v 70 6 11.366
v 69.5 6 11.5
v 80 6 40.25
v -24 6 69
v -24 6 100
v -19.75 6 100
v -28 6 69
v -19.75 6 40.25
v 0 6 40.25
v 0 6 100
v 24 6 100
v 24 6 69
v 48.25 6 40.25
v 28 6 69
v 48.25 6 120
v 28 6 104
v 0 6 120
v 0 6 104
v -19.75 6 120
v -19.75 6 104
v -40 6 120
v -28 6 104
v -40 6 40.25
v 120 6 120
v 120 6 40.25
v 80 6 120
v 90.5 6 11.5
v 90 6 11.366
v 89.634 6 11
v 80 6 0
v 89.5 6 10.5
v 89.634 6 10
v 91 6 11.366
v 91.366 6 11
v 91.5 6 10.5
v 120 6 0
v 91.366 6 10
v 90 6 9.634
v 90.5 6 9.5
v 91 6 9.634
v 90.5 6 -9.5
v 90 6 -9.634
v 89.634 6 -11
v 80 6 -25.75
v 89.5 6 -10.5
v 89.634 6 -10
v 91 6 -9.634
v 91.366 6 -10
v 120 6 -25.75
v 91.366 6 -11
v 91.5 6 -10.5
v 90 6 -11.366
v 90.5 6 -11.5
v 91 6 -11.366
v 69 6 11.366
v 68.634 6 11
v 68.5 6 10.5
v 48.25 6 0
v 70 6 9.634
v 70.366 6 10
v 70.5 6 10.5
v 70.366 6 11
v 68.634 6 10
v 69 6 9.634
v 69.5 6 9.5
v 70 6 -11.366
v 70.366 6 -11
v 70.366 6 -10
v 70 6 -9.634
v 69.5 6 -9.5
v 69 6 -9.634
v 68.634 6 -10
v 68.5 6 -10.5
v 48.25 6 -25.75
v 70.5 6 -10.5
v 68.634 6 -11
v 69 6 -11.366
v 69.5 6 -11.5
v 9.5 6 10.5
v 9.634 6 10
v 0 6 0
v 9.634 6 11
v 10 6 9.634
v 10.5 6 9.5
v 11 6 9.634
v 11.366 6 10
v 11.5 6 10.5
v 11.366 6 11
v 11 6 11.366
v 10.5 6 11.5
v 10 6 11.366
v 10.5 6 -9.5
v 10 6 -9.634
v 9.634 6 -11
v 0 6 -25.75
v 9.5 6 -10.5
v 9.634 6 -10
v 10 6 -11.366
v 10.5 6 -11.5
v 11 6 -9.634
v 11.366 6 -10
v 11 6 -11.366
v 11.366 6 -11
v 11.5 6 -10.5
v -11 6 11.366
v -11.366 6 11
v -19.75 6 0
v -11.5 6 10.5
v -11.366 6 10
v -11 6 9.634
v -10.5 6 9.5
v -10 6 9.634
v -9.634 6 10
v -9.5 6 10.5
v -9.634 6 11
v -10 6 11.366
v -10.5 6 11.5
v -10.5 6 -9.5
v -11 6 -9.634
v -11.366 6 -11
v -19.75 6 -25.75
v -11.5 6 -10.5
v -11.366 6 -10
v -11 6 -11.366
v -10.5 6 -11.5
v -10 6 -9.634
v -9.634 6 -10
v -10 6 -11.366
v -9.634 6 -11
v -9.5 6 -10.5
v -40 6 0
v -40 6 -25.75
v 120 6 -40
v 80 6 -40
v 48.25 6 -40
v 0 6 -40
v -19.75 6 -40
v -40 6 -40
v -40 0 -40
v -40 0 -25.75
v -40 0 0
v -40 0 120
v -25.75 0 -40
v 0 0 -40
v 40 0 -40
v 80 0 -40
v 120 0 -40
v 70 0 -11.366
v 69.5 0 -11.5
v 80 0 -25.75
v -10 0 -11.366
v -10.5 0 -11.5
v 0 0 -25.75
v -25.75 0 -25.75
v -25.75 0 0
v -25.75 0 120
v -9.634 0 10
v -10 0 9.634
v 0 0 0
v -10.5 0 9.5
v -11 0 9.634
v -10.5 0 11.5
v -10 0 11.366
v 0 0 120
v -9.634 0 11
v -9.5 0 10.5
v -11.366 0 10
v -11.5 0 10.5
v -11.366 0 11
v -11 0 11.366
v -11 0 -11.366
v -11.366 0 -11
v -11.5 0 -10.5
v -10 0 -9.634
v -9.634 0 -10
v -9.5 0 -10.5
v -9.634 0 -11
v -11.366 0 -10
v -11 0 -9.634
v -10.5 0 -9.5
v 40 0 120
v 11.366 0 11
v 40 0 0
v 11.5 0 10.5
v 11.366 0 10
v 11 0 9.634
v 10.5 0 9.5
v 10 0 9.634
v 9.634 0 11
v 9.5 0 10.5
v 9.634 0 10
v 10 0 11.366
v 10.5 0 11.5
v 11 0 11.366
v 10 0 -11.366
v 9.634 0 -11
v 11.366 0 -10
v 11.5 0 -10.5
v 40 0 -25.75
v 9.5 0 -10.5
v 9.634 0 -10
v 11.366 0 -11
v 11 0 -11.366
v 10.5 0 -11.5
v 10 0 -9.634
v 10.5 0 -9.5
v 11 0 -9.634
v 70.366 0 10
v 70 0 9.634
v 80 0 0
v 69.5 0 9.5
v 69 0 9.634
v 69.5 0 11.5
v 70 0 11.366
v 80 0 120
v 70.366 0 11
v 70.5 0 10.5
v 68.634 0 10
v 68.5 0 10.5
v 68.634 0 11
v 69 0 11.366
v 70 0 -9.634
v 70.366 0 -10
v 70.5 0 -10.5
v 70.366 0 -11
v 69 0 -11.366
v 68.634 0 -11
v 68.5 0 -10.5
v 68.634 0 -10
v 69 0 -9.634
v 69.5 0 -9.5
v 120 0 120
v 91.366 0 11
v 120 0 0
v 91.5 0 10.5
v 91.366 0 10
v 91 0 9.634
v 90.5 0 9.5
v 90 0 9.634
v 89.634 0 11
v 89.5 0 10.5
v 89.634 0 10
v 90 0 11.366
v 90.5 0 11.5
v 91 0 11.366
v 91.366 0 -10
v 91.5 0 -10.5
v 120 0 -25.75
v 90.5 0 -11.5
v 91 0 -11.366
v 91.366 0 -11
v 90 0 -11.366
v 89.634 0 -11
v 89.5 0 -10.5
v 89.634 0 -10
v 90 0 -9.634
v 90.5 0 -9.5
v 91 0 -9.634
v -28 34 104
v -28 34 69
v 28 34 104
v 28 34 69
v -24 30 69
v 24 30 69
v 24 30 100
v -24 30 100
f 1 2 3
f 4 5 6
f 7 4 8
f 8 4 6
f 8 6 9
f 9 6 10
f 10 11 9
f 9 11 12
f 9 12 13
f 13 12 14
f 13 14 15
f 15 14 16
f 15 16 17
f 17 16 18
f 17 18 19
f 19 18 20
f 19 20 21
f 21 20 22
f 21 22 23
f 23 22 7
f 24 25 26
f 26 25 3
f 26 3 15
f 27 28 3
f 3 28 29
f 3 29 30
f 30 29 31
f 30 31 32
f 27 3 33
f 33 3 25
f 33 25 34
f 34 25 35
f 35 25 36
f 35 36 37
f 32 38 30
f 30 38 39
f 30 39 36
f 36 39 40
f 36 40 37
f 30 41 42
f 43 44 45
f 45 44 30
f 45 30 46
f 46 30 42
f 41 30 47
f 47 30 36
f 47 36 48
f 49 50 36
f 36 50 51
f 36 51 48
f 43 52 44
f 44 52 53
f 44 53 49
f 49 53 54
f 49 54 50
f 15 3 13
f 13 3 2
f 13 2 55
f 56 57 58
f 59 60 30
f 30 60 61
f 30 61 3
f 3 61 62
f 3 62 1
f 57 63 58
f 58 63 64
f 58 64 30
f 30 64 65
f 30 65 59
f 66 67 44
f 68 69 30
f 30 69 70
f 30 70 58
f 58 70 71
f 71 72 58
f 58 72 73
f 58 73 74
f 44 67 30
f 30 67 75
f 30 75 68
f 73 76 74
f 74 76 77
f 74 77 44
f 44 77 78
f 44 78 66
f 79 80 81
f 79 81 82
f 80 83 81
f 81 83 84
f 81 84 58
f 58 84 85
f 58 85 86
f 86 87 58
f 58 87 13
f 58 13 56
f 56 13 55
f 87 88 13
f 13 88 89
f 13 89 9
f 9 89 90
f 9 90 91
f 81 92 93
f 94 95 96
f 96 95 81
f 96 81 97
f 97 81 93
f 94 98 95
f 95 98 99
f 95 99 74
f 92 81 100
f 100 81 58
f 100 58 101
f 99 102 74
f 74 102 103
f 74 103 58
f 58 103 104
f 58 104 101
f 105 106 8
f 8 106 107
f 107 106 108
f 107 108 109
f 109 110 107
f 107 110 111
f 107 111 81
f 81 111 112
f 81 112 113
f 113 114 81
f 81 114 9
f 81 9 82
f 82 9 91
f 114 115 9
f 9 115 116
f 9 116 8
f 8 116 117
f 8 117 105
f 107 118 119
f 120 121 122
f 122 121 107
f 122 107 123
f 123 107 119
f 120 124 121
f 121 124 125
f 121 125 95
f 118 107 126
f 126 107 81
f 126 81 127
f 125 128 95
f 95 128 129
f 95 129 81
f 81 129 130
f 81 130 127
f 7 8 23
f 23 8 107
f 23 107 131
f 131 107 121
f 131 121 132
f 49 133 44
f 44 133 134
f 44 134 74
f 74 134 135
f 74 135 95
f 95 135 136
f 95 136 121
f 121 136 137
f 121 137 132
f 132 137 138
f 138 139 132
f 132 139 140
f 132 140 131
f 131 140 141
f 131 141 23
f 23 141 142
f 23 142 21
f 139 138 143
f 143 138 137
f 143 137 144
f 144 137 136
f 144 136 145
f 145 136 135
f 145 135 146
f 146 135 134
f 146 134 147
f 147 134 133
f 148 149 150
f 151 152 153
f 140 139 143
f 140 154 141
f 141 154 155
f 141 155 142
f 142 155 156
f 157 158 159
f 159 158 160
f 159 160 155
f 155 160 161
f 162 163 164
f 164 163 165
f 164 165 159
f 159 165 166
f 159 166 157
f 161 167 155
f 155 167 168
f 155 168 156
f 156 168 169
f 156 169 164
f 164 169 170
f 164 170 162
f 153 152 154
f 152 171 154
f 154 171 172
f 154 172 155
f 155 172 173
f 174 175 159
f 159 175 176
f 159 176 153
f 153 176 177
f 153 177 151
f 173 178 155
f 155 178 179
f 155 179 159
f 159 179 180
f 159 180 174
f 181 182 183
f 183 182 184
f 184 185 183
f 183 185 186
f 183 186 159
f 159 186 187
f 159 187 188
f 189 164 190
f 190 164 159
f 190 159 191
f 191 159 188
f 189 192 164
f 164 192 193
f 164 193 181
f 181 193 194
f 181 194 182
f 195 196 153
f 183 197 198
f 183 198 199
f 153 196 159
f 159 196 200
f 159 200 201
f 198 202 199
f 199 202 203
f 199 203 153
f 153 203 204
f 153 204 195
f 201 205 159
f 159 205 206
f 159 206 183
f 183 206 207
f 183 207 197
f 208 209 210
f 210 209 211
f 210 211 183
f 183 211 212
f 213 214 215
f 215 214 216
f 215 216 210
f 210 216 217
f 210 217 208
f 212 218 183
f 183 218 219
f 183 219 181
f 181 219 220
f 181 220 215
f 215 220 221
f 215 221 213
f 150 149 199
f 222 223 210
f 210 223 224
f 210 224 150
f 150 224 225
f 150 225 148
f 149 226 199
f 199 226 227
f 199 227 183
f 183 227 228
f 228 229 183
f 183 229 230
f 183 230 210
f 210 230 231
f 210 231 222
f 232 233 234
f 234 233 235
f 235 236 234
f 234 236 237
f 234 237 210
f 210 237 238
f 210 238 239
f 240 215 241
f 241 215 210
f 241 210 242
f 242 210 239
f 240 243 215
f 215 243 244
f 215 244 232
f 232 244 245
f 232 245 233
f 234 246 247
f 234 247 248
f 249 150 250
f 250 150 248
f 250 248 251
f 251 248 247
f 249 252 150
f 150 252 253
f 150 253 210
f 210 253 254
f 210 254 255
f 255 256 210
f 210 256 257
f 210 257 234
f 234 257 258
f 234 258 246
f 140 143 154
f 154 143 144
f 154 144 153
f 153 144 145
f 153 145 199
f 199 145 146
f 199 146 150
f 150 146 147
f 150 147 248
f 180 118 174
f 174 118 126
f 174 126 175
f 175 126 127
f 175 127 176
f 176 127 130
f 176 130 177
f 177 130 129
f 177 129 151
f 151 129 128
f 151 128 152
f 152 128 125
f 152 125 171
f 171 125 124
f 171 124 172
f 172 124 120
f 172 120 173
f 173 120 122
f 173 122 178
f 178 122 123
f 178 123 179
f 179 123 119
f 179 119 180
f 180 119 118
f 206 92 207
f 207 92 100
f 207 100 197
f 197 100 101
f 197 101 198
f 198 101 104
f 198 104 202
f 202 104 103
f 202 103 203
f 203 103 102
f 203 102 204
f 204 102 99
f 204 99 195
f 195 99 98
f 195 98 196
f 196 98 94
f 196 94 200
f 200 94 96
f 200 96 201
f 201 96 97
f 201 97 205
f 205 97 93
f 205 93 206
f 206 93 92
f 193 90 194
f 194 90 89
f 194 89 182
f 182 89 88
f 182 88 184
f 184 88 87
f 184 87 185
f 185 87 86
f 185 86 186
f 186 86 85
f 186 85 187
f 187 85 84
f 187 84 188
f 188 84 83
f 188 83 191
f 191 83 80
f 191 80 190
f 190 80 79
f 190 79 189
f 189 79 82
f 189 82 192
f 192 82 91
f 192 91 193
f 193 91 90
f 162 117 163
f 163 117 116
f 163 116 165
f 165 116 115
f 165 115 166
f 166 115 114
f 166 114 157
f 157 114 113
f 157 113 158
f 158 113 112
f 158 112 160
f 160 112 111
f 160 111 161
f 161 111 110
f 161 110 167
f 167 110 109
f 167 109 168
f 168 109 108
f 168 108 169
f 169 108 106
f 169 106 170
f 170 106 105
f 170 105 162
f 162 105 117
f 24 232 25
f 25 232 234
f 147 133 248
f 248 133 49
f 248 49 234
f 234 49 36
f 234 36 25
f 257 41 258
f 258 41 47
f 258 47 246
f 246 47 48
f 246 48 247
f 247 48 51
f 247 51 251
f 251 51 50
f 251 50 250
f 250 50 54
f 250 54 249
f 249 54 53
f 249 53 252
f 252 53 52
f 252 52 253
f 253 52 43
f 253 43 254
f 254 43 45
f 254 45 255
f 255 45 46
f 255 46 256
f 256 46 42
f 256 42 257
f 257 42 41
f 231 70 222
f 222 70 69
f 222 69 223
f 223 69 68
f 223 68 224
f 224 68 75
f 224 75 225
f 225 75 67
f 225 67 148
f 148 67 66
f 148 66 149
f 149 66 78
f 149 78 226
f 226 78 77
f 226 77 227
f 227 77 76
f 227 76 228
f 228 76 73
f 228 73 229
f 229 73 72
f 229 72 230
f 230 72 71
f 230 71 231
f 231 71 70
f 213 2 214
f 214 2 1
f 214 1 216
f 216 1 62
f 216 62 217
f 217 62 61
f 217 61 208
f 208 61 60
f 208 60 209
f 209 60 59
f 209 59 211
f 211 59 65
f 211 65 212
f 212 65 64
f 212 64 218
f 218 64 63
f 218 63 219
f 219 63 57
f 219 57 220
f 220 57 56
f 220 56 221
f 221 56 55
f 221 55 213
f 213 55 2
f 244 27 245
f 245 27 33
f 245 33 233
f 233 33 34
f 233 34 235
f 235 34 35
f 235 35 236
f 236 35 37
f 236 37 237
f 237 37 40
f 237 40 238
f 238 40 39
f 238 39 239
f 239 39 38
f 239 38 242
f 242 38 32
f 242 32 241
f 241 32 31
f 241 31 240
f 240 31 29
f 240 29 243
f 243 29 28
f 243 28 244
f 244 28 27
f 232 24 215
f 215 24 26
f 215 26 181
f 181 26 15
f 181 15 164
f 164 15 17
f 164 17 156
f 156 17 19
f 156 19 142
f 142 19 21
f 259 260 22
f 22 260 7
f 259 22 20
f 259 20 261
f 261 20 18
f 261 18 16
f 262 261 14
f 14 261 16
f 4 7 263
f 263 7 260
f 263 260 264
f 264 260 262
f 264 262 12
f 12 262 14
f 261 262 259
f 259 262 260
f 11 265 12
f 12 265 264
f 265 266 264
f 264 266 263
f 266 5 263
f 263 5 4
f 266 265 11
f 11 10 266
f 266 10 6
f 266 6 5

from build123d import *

# Parameters (mm, degrees)
SKETCH_1_W          = 80
SKETCH_1_H          = 80
EXTRUDE_1_DEPTH     = 6
SKETCH_2_R          = 1
CUT_EXTRUDE_1_DEPTH = 57.885850613
SKETCH_3_W          = 80
SKETCH_3_H          = 6
EXTRUDE_2_DEPTH     = 80
SKETCH_4_W          = 56
SKETCH_4_H          = 35
EXTRUDE_3_DEPTH     = 28
SKETCH_5_W          = 48
SKETCH_5_H          = 24
CUT_EXTRUDE_2_DEPTH = 31


with BuildPart() as part:
    # ｽｹｯﾁ1 → ﾎﾞｽ - 押し出し1 (new body)
    with BuildSketch(Plane(origin=(0, 0, 0), x_dir=(1, 0, 0), z_dir=(0, 1, 0))):
        Rectangle(SKETCH_1_W, SKETCH_1_H)
    extrude_1 = extrude(amount=EXTRUDE_1_DEPTH)

    # ｽｹｯﾁ2 → ｶｯﾄ - 押し出し1 (cut, through all)
    with BuildSketch(Plane(origin=(0, 6, 0), x_dir=(1, 0, 0), z_dir=(0, 1, 0))):
        with Locations(Location((-10.5, 10.5, 0), (0, 0, 270))):
            Circle(SKETCH_2_R)
        with Locations(Location((10.5, 10.5, 0), (0, 0, 270))):
            Circle(SKETCH_2_R)
        with Locations(Location((10.5, -10.5, 0), (0, 0, 270))):
            Circle(SKETCH_2_R)
        with Locations(Location((-10.5, -10.5, 0), (0, 0, 270))):
            Circle(SKETCH_2_R)
    cut_extrude_1 = extrude(amount=-CUT_EXTRUDE_1_DEPTH, mode=Mode.SUBTRACT)

    # ﾐﾗｰ9: ﾎﾞｽ - 押し出し1, ｶｯﾄ - 押し出し1 across plane
    add(extrude_1.mirror(Plane(origin=(40, 6, -40), x_dir=(0, 0, 1), z_dir=(-1, 0, 0))))
    add(cut_extrude_1.mirror(Plane(origin=(40, 6, -40), x_dir=(0, 0, 1), z_dir=(-1, 0, 0))), mode=Mode.SUBTRACT)

    # ﾐﾗｰ10: ﾎﾞｽ - 押し出し1 across plane
    add(extrude_1.mirror(Plane(origin=(-40, 6, 40), x_dir=(1, 0, 0), z_dir=(0, 0, -1))))

    # ｽｹｯﾁ3 → ﾎﾞｽ - 押し出し2 (add)
    with BuildSketch(Plane(origin=(40, 0, 0), x_dir=(0, 0, -1), z_dir=(1, 0, 0))):
        with Locations((-80, 3)):
            Rectangle(SKETCH_3_W, SKETCH_3_H)
    extrude(amount=EXTRUDE_2_DEPTH)

    # ｽｹｯﾁ4 → ﾎﾞｽ - 押し出し3 (add)
    with BuildSketch(Plane(origin=(0, 6, 0), x_dir=(1, 0, 0), z_dir=(0, 1, 0))):
        with Locations((0, -86.5)):
            Rectangle(SKETCH_4_W, SKETCH_4_H)
    extrude(amount=EXTRUDE_3_DEPTH)

    # ｽｹｯﾁ5 → ｶｯﾄ - 押し出し2 (cut)
    with BuildSketch(Plane(origin=(0, 0, 69), x_dir=(-1, 0, 0), z_dir=(0, 0, -1))):
        with Locations((0, 18)):
            Rectangle(SKETCH_5_W, SKETCH_5_H)
    extrude(amount=-CUT_EXTRUDE_2_DEPTH, mode=Mode.SUBTRACT)


solid = part.part
